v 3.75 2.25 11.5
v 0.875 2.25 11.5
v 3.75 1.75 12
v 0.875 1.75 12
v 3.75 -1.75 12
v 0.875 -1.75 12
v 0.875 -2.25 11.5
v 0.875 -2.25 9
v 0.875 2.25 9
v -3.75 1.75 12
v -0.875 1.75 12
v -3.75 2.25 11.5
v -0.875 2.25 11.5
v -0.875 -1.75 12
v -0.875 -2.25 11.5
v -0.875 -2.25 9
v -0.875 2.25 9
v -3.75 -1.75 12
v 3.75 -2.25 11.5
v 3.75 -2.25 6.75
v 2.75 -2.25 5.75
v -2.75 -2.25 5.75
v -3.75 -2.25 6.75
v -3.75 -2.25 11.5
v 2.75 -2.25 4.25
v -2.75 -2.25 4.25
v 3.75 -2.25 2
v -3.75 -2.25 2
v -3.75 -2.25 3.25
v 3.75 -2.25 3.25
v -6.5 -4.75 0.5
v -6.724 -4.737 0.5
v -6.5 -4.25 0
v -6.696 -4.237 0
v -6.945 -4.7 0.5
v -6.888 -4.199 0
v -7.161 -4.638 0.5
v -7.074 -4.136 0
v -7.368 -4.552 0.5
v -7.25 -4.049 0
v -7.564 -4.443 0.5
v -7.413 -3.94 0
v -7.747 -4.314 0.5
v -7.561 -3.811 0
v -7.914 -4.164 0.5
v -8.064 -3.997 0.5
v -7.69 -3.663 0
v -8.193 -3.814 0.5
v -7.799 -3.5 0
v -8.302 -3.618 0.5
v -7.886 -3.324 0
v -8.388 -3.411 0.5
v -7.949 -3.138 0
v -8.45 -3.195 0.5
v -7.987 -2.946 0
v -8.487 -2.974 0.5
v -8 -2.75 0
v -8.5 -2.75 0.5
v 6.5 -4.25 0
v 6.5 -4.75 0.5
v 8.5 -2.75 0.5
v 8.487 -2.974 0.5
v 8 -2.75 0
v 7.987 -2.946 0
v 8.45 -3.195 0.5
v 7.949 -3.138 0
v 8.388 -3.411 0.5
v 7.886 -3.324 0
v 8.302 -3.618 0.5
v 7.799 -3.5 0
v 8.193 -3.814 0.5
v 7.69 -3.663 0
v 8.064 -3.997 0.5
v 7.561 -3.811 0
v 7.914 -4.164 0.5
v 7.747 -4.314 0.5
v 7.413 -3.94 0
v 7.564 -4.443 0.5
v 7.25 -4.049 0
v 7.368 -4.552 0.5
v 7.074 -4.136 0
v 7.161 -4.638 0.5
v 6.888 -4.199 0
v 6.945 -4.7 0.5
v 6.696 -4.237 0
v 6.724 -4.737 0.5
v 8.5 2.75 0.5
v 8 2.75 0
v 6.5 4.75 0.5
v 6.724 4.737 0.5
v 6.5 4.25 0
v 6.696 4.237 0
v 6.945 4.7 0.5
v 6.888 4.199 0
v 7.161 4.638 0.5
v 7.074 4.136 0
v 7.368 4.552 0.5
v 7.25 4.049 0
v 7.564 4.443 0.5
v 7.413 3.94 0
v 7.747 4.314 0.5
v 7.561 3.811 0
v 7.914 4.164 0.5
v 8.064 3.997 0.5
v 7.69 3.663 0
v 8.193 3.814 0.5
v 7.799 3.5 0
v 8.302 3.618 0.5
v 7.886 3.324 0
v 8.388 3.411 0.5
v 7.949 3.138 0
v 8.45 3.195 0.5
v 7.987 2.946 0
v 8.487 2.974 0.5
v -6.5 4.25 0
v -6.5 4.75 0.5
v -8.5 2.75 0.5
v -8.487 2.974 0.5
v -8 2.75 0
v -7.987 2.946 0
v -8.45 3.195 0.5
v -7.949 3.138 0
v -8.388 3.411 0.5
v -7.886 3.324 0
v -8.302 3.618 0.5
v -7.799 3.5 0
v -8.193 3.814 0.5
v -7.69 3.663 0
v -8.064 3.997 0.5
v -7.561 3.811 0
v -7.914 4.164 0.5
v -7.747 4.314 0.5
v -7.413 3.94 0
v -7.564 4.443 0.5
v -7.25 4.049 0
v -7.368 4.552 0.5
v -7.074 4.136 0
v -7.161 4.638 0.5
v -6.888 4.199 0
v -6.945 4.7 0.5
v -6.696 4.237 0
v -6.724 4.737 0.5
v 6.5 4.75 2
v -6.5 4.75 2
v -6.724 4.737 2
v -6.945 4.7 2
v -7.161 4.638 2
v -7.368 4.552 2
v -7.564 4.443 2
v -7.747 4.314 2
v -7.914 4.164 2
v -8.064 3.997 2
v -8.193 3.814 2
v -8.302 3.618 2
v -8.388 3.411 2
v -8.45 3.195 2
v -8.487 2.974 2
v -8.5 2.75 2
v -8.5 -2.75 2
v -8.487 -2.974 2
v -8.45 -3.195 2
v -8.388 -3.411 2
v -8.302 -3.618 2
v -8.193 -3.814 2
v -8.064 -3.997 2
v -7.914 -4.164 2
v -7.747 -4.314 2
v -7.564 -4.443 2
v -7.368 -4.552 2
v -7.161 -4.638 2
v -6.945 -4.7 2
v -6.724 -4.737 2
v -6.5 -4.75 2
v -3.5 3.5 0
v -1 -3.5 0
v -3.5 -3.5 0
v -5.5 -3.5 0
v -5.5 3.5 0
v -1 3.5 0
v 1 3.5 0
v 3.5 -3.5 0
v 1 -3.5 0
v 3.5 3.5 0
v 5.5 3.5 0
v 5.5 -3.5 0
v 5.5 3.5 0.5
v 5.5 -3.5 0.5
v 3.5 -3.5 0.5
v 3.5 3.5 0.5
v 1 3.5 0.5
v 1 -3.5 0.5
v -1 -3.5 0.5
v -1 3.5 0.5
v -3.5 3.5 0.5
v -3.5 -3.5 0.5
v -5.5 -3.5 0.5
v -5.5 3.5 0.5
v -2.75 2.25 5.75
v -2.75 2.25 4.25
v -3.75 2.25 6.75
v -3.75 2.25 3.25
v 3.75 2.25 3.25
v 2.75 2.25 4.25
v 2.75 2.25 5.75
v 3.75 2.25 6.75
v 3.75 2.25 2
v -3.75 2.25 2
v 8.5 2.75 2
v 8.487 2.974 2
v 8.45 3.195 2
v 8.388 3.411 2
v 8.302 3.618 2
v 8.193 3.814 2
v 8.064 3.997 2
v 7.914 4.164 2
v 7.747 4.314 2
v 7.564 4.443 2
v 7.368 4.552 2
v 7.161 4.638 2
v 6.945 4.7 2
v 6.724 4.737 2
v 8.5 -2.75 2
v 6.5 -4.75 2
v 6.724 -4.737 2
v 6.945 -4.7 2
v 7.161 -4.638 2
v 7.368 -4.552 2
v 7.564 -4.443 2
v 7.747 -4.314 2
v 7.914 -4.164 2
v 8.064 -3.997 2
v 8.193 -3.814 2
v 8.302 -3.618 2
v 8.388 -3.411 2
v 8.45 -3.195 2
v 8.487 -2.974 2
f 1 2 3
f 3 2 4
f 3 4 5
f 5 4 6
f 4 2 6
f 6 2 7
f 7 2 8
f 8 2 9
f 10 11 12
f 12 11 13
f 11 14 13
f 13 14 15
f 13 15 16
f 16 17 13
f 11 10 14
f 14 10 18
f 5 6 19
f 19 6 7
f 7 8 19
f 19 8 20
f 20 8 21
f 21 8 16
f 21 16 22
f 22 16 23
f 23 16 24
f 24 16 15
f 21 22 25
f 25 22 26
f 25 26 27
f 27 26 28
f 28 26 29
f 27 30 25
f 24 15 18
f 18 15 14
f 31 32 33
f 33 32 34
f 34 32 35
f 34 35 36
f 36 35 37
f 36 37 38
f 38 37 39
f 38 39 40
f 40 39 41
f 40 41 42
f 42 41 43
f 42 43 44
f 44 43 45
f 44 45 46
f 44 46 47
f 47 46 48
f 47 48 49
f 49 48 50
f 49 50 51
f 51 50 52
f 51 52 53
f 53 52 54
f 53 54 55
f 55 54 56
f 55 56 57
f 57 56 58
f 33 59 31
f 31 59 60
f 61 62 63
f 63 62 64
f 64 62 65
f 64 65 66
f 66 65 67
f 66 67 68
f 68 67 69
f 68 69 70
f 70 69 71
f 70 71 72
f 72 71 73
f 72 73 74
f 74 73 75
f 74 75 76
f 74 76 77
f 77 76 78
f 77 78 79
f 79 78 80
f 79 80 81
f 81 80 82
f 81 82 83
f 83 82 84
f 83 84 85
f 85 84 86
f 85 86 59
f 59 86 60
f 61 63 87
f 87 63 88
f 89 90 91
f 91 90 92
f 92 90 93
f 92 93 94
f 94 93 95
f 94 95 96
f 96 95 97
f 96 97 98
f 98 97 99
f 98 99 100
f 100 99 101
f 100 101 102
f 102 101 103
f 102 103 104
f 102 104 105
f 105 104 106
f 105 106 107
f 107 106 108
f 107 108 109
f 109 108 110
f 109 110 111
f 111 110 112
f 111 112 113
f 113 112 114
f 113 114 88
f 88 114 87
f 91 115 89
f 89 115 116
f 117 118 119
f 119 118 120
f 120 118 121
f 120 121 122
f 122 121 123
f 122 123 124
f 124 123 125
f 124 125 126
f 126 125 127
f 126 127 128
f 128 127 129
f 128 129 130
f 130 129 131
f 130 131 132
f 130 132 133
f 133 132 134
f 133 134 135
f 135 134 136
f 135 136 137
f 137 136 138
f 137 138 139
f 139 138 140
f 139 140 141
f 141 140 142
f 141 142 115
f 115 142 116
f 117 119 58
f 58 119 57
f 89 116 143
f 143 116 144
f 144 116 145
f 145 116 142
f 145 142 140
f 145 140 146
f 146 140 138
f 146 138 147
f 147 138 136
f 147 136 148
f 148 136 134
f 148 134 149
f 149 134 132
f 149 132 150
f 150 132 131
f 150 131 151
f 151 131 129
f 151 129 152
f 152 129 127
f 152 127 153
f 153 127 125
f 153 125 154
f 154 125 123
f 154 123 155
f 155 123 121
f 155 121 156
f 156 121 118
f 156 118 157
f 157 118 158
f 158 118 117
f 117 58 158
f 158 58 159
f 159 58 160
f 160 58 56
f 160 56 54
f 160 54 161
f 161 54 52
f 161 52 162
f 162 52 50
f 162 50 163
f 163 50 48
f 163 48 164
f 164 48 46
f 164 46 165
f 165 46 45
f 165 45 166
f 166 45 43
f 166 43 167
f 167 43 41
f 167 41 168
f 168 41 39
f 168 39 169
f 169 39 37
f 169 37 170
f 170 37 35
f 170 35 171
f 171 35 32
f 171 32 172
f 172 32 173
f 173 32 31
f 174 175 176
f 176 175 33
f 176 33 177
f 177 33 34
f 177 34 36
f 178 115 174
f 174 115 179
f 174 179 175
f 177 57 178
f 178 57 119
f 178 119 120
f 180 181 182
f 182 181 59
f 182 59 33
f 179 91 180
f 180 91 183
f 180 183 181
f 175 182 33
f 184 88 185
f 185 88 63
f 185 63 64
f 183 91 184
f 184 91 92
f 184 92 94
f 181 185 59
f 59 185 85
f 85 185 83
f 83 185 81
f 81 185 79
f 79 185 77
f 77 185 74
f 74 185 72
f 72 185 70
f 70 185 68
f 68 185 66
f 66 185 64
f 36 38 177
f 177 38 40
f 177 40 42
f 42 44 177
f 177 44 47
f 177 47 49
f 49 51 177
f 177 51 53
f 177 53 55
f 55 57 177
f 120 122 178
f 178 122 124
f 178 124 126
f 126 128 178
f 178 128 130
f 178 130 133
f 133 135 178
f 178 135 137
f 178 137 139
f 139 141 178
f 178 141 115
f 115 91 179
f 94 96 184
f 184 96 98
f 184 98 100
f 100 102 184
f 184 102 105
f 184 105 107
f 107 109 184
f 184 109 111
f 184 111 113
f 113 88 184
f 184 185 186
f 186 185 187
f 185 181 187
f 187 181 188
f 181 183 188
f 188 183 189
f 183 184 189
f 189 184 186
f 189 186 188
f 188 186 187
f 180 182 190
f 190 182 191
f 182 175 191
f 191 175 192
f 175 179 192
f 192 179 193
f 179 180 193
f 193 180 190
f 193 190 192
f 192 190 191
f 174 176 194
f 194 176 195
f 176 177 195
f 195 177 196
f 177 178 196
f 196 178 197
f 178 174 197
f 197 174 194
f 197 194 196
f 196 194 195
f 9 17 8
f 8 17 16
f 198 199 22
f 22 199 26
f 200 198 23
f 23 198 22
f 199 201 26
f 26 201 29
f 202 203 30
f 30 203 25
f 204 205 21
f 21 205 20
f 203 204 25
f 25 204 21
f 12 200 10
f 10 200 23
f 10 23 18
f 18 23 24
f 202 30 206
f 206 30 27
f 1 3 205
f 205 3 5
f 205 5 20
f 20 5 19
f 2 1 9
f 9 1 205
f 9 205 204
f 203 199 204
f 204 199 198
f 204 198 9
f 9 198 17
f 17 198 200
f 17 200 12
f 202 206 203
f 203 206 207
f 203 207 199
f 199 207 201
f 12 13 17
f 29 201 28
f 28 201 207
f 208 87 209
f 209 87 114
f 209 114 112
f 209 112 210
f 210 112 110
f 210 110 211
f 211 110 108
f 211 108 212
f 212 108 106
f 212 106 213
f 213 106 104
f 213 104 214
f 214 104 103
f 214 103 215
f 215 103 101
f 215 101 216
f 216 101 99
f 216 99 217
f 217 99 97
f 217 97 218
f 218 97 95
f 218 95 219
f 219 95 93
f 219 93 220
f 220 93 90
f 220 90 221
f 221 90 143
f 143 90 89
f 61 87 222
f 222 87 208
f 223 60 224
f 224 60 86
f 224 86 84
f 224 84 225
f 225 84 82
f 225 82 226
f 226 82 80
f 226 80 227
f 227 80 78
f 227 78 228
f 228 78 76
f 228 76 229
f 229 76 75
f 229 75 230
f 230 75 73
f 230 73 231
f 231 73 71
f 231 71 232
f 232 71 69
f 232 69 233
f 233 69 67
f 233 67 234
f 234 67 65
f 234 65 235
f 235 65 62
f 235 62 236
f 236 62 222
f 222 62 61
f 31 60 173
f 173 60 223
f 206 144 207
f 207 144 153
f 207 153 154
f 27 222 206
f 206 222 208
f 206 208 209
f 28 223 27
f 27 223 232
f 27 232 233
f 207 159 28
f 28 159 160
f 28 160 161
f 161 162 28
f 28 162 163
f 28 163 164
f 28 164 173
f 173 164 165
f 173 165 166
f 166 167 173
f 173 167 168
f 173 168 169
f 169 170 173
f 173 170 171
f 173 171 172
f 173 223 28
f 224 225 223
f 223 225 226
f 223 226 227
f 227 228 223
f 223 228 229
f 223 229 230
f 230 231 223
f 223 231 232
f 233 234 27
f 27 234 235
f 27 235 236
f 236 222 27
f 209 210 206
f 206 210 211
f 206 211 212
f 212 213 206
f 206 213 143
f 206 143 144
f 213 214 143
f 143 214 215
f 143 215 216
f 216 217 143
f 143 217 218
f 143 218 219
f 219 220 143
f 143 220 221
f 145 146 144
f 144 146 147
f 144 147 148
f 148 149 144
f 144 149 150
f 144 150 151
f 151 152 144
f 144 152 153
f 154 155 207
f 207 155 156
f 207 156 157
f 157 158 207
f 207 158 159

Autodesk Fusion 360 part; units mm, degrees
sketch "Skizze1" plane through (0, 0, 0) normal (0, 0, 1) x (1, 0, 0)
  line L0 (-6.5, 4.75) -> (6.5, 4.75)
  line L1 (8.5, 2.75) -> (8.5, -2.75)
  line L2 (6.5, -4.75) -> (-6.5, -4.75)
  line L3 (-8.5, -2.75) -> (-8.5, 2.75)
  line L4 (-8.5, 4.75) -> (8.5, -4.75) construction
  line L5 (8.5, 4.75) -> (-8.5, -4.75) construction
  arc A0 (8.5, 2.75) -> (6.5, 4.75) centre (6.5, 2.75) ccw
  arc A1 (-6.5, 4.75) -> (-8.5, 2.75) centre (-6.5, 2.75) ccw
  arc A2 (-8.5, -2.75) -> (-6.5, -4.75) centre (-6.5, -2.75) ccw
  arc A3 (6.5, -4.75) -> (8.5, -2.75) centre (6.5, -2.75) ccw
  dimension "d464" = 17
  dimension "d465" = 9.5
  dimension "d468" = 2
extrude "Extrusion1" add sketch "Skizze1" along normal blind 2
sketch "Skizze2" plane through (0, 0, 2) normal (0, 0, 1) x (-1, 0, 0)
  arc A0 (8.5, 2.75) -> (6.5, 4.75) centre (6.5, 2.75) ccw
  line L0 (6.5, 4.75) -> (-6.5, 4.75)
  arc A1 (-6.5, 4.75) -> (-8.5, 2.75) centre (-6.5, 2.75) ccw
  line L1 (-8.5, 2.75) -> (-8.5, -2.75)
  arc A2 (-8.5, -2.75) -> (-6.5, -4.75) centre (-6.5, -2.75) ccw
  line L2 (-6.5, -4.75) -> (6.5, -4.75)
  arc A3 (6.5, -4.75) -> (8.5, -2.75) centre (6.5, -2.75) ccw
  line L3 (8.5, -2.75) -> (8.5, 2.75)
  line L4 (3.75, 2.25) -> (-3.75, 2.25)
  line L5 (-3.75, 2.25) -> (-3.75, -2.25)
  line L6 (-3.75, -2.25) -> (3.75, -2.25)
  line L7 (3.75, -2.25) -> (3.75, 2.25)
  line L8 (3.75, 2.25) -> (-3.75, -2.25) construction
  line L9 (-3.75, 2.25) -> (3.75, -2.25) construction
  dimension "d469" = 7.5
  dimension "d470" = 4.5
extrude "Extrusion2" add sketch "Skizze2" along normal blind 10 contours L4 L5 L6 L7
sketch "Skizze3" plane through (0, -2.25, 0) normal (0, -1, 0) x (1, 0, 0)
  line L0 (-3.75, 2) -> (3.75, 2)
  line L1 (3.75, 2) -> (3.75, 12)
  line L2 (3.75, 12) -> (-3.75, 12)
  line L3 (-3.75, 12) -> (-3.75, 2)
  line L4 (-0.875, 12) -> (0.875, 12)
  line L5 (0.875, 12) -> (0.875, 9)
  line L6 (0.875, 9) -> (-0.875, 9)
  line L7 (-0.875, 9) -> (-0.875, 12)
  line L8 (-0.875, 12) -> (0.875, 9) construction
  line L9 (0.875, 12) -> (-0.875, 9) construction
  line L10 (-3.75, 3.25) -> (-2.75, 4.25)
  line L11 (-3.75, 3.25) -> (-1.5, 3.25) construction
  line L12 (-2.75, 4.25) -> (-2.75, 5.75)
  line L13 (-2.75, 5.75) -> (-3.75, 6.75)
  line L14 (-6.5, 2) -> (6.5, 2)
  line L15 (0, 20) -> (0, 2.5)
  line L16 (3.75, 3.25) -> (2.75, 4.25)
  line L17 (2.75, 4.25) -> (2.75, 5.75)
  line L18 (2.75, 5.75) -> (3.75, 6.75)
  point P0 (0, 10.5)
  dimension "d479" = 1.75
  dimension "d480" = 3
  dimension "d483" = 45
  dimension "d484" = 1
  dimension "d485" = 1.5
  dimension "d486" = 2.25
extrude "Extrusion3" cut sketch "Skizze3" against normal up to surface (4.5 mm away) contours L3 L10 L12 L13 | L1 L16 L17 L18 | L2 L4 L6 L7 L15 | L2 L4 L5 L6 L15
sketch "Skizze4" plane through (0, 0, 0) normal (0, 0, -1) x (1, 0, 0)
  arc A0 (-6.5, 4.75) -> (-8.5, 2.75) centre (-6.5, 2.75) ccw
  line L0 (-8.5, 2.75) -> (-8.5, -2.75)
  arc A1 (-8.5, -2.75) -> (-6.5, -4.75) centre (-6.5, -2.75) ccw
  line L1 (-6.5, -4.75) -> (6.5, -4.75)
  arc A2 (6.5, -4.75) -> (8.5, -2.75) centre (6.5, -2.75) ccw
  line L2 (8.5, -2.75) -> (8.5, 2.75)
  arc A3 (8.5, 2.75) -> (6.5, 4.75) centre (6.5, 2.75) ccw
  line L3 (6.5, 4.75) -> (-6.5, 4.75)
  line L4 (-1, 3.5) -> (1, 3.5)
  line L5 (1, 3.5) -> (1, -3.5)
  line L6 (1, -3.5) -> (-1, -3.5)
  line L7 (-1, -3.5) -> (-1, 3.5)
  line L8 (-1, 3.5) -> (1, -3.5) construction
  line L9 (1, 3.5) -> (-1, -3.5) construction
  line L10 (-5.5, 3.5) -> (-3.5, 3.5)
  line L11 (-3.5, 3.5) -> (-3.5, -3.5)
  line L12 (-3.5, -3.5) -> (-5.5, -3.5)
  line L13 (-5.5, -3.5) -> (-5.5, 3.5)
  line L14 (-5.5, 3.5) -> (-3.5, -3.5) construction
  line L15 (-3.5, 3.5) -> (-5.5, -3.5) construction
  line L16 (3.5, 3.5) -> (5.5, 3.5)
  line L17 (5.5, 3.5) -> (5.5, -3.5)
  line L18 (5.5, -3.5) -> (3.5, -3.5)
  line L19 (3.5, -3.5) -> (3.5, 3.5)
  line L20 (3.5, 3.5) -> (5.5, -3.5) construction
  line L21 (5.5, 3.5) -> (3.5, -3.5) construction
  point P0 (-4.5, 0)
  point P1 (4.5, 0)
  dimension "d503" = 2
  dimension "d504" = 7
  dimension "d505" = 2.5
  dimension "d506" = 2.5
extrude "Extrusion4" cut sketch "Skizze4" against normal blind 0.5 contours L4 L5 L6 L7 | L10 L11 L12 L13 | L16 L17 L18 L19
chamfer "Fase1" distance 0.5 angle 45 12 edges at (-7.9142, -4.1642, 0) (0, -4.75, 0) (7.9142, -4.1642, 0) (8.5, 0, 0) (7.9142, 4.1642, 0) (0, 4.75, 0) (-7.9142, 4.1642, 0) (-8.5, 0, 0) (-2.3125, -2.25, 12) (2.3125, -2.25, 12) (-2.3125, 2.25, 12) (2.3125, 2.25, 12)
equation "d465 = 10 mm - ( 2 * 0.25 ) * 1 mm"
equation "d469 = 10 mm - 2.5 mm"
equation "d470 = 5 mm - ( 2 * 0.25 ) * 1 mm"
equation "d486 = 2 mm + 0.25 mm"
equation "d506 = d505"
